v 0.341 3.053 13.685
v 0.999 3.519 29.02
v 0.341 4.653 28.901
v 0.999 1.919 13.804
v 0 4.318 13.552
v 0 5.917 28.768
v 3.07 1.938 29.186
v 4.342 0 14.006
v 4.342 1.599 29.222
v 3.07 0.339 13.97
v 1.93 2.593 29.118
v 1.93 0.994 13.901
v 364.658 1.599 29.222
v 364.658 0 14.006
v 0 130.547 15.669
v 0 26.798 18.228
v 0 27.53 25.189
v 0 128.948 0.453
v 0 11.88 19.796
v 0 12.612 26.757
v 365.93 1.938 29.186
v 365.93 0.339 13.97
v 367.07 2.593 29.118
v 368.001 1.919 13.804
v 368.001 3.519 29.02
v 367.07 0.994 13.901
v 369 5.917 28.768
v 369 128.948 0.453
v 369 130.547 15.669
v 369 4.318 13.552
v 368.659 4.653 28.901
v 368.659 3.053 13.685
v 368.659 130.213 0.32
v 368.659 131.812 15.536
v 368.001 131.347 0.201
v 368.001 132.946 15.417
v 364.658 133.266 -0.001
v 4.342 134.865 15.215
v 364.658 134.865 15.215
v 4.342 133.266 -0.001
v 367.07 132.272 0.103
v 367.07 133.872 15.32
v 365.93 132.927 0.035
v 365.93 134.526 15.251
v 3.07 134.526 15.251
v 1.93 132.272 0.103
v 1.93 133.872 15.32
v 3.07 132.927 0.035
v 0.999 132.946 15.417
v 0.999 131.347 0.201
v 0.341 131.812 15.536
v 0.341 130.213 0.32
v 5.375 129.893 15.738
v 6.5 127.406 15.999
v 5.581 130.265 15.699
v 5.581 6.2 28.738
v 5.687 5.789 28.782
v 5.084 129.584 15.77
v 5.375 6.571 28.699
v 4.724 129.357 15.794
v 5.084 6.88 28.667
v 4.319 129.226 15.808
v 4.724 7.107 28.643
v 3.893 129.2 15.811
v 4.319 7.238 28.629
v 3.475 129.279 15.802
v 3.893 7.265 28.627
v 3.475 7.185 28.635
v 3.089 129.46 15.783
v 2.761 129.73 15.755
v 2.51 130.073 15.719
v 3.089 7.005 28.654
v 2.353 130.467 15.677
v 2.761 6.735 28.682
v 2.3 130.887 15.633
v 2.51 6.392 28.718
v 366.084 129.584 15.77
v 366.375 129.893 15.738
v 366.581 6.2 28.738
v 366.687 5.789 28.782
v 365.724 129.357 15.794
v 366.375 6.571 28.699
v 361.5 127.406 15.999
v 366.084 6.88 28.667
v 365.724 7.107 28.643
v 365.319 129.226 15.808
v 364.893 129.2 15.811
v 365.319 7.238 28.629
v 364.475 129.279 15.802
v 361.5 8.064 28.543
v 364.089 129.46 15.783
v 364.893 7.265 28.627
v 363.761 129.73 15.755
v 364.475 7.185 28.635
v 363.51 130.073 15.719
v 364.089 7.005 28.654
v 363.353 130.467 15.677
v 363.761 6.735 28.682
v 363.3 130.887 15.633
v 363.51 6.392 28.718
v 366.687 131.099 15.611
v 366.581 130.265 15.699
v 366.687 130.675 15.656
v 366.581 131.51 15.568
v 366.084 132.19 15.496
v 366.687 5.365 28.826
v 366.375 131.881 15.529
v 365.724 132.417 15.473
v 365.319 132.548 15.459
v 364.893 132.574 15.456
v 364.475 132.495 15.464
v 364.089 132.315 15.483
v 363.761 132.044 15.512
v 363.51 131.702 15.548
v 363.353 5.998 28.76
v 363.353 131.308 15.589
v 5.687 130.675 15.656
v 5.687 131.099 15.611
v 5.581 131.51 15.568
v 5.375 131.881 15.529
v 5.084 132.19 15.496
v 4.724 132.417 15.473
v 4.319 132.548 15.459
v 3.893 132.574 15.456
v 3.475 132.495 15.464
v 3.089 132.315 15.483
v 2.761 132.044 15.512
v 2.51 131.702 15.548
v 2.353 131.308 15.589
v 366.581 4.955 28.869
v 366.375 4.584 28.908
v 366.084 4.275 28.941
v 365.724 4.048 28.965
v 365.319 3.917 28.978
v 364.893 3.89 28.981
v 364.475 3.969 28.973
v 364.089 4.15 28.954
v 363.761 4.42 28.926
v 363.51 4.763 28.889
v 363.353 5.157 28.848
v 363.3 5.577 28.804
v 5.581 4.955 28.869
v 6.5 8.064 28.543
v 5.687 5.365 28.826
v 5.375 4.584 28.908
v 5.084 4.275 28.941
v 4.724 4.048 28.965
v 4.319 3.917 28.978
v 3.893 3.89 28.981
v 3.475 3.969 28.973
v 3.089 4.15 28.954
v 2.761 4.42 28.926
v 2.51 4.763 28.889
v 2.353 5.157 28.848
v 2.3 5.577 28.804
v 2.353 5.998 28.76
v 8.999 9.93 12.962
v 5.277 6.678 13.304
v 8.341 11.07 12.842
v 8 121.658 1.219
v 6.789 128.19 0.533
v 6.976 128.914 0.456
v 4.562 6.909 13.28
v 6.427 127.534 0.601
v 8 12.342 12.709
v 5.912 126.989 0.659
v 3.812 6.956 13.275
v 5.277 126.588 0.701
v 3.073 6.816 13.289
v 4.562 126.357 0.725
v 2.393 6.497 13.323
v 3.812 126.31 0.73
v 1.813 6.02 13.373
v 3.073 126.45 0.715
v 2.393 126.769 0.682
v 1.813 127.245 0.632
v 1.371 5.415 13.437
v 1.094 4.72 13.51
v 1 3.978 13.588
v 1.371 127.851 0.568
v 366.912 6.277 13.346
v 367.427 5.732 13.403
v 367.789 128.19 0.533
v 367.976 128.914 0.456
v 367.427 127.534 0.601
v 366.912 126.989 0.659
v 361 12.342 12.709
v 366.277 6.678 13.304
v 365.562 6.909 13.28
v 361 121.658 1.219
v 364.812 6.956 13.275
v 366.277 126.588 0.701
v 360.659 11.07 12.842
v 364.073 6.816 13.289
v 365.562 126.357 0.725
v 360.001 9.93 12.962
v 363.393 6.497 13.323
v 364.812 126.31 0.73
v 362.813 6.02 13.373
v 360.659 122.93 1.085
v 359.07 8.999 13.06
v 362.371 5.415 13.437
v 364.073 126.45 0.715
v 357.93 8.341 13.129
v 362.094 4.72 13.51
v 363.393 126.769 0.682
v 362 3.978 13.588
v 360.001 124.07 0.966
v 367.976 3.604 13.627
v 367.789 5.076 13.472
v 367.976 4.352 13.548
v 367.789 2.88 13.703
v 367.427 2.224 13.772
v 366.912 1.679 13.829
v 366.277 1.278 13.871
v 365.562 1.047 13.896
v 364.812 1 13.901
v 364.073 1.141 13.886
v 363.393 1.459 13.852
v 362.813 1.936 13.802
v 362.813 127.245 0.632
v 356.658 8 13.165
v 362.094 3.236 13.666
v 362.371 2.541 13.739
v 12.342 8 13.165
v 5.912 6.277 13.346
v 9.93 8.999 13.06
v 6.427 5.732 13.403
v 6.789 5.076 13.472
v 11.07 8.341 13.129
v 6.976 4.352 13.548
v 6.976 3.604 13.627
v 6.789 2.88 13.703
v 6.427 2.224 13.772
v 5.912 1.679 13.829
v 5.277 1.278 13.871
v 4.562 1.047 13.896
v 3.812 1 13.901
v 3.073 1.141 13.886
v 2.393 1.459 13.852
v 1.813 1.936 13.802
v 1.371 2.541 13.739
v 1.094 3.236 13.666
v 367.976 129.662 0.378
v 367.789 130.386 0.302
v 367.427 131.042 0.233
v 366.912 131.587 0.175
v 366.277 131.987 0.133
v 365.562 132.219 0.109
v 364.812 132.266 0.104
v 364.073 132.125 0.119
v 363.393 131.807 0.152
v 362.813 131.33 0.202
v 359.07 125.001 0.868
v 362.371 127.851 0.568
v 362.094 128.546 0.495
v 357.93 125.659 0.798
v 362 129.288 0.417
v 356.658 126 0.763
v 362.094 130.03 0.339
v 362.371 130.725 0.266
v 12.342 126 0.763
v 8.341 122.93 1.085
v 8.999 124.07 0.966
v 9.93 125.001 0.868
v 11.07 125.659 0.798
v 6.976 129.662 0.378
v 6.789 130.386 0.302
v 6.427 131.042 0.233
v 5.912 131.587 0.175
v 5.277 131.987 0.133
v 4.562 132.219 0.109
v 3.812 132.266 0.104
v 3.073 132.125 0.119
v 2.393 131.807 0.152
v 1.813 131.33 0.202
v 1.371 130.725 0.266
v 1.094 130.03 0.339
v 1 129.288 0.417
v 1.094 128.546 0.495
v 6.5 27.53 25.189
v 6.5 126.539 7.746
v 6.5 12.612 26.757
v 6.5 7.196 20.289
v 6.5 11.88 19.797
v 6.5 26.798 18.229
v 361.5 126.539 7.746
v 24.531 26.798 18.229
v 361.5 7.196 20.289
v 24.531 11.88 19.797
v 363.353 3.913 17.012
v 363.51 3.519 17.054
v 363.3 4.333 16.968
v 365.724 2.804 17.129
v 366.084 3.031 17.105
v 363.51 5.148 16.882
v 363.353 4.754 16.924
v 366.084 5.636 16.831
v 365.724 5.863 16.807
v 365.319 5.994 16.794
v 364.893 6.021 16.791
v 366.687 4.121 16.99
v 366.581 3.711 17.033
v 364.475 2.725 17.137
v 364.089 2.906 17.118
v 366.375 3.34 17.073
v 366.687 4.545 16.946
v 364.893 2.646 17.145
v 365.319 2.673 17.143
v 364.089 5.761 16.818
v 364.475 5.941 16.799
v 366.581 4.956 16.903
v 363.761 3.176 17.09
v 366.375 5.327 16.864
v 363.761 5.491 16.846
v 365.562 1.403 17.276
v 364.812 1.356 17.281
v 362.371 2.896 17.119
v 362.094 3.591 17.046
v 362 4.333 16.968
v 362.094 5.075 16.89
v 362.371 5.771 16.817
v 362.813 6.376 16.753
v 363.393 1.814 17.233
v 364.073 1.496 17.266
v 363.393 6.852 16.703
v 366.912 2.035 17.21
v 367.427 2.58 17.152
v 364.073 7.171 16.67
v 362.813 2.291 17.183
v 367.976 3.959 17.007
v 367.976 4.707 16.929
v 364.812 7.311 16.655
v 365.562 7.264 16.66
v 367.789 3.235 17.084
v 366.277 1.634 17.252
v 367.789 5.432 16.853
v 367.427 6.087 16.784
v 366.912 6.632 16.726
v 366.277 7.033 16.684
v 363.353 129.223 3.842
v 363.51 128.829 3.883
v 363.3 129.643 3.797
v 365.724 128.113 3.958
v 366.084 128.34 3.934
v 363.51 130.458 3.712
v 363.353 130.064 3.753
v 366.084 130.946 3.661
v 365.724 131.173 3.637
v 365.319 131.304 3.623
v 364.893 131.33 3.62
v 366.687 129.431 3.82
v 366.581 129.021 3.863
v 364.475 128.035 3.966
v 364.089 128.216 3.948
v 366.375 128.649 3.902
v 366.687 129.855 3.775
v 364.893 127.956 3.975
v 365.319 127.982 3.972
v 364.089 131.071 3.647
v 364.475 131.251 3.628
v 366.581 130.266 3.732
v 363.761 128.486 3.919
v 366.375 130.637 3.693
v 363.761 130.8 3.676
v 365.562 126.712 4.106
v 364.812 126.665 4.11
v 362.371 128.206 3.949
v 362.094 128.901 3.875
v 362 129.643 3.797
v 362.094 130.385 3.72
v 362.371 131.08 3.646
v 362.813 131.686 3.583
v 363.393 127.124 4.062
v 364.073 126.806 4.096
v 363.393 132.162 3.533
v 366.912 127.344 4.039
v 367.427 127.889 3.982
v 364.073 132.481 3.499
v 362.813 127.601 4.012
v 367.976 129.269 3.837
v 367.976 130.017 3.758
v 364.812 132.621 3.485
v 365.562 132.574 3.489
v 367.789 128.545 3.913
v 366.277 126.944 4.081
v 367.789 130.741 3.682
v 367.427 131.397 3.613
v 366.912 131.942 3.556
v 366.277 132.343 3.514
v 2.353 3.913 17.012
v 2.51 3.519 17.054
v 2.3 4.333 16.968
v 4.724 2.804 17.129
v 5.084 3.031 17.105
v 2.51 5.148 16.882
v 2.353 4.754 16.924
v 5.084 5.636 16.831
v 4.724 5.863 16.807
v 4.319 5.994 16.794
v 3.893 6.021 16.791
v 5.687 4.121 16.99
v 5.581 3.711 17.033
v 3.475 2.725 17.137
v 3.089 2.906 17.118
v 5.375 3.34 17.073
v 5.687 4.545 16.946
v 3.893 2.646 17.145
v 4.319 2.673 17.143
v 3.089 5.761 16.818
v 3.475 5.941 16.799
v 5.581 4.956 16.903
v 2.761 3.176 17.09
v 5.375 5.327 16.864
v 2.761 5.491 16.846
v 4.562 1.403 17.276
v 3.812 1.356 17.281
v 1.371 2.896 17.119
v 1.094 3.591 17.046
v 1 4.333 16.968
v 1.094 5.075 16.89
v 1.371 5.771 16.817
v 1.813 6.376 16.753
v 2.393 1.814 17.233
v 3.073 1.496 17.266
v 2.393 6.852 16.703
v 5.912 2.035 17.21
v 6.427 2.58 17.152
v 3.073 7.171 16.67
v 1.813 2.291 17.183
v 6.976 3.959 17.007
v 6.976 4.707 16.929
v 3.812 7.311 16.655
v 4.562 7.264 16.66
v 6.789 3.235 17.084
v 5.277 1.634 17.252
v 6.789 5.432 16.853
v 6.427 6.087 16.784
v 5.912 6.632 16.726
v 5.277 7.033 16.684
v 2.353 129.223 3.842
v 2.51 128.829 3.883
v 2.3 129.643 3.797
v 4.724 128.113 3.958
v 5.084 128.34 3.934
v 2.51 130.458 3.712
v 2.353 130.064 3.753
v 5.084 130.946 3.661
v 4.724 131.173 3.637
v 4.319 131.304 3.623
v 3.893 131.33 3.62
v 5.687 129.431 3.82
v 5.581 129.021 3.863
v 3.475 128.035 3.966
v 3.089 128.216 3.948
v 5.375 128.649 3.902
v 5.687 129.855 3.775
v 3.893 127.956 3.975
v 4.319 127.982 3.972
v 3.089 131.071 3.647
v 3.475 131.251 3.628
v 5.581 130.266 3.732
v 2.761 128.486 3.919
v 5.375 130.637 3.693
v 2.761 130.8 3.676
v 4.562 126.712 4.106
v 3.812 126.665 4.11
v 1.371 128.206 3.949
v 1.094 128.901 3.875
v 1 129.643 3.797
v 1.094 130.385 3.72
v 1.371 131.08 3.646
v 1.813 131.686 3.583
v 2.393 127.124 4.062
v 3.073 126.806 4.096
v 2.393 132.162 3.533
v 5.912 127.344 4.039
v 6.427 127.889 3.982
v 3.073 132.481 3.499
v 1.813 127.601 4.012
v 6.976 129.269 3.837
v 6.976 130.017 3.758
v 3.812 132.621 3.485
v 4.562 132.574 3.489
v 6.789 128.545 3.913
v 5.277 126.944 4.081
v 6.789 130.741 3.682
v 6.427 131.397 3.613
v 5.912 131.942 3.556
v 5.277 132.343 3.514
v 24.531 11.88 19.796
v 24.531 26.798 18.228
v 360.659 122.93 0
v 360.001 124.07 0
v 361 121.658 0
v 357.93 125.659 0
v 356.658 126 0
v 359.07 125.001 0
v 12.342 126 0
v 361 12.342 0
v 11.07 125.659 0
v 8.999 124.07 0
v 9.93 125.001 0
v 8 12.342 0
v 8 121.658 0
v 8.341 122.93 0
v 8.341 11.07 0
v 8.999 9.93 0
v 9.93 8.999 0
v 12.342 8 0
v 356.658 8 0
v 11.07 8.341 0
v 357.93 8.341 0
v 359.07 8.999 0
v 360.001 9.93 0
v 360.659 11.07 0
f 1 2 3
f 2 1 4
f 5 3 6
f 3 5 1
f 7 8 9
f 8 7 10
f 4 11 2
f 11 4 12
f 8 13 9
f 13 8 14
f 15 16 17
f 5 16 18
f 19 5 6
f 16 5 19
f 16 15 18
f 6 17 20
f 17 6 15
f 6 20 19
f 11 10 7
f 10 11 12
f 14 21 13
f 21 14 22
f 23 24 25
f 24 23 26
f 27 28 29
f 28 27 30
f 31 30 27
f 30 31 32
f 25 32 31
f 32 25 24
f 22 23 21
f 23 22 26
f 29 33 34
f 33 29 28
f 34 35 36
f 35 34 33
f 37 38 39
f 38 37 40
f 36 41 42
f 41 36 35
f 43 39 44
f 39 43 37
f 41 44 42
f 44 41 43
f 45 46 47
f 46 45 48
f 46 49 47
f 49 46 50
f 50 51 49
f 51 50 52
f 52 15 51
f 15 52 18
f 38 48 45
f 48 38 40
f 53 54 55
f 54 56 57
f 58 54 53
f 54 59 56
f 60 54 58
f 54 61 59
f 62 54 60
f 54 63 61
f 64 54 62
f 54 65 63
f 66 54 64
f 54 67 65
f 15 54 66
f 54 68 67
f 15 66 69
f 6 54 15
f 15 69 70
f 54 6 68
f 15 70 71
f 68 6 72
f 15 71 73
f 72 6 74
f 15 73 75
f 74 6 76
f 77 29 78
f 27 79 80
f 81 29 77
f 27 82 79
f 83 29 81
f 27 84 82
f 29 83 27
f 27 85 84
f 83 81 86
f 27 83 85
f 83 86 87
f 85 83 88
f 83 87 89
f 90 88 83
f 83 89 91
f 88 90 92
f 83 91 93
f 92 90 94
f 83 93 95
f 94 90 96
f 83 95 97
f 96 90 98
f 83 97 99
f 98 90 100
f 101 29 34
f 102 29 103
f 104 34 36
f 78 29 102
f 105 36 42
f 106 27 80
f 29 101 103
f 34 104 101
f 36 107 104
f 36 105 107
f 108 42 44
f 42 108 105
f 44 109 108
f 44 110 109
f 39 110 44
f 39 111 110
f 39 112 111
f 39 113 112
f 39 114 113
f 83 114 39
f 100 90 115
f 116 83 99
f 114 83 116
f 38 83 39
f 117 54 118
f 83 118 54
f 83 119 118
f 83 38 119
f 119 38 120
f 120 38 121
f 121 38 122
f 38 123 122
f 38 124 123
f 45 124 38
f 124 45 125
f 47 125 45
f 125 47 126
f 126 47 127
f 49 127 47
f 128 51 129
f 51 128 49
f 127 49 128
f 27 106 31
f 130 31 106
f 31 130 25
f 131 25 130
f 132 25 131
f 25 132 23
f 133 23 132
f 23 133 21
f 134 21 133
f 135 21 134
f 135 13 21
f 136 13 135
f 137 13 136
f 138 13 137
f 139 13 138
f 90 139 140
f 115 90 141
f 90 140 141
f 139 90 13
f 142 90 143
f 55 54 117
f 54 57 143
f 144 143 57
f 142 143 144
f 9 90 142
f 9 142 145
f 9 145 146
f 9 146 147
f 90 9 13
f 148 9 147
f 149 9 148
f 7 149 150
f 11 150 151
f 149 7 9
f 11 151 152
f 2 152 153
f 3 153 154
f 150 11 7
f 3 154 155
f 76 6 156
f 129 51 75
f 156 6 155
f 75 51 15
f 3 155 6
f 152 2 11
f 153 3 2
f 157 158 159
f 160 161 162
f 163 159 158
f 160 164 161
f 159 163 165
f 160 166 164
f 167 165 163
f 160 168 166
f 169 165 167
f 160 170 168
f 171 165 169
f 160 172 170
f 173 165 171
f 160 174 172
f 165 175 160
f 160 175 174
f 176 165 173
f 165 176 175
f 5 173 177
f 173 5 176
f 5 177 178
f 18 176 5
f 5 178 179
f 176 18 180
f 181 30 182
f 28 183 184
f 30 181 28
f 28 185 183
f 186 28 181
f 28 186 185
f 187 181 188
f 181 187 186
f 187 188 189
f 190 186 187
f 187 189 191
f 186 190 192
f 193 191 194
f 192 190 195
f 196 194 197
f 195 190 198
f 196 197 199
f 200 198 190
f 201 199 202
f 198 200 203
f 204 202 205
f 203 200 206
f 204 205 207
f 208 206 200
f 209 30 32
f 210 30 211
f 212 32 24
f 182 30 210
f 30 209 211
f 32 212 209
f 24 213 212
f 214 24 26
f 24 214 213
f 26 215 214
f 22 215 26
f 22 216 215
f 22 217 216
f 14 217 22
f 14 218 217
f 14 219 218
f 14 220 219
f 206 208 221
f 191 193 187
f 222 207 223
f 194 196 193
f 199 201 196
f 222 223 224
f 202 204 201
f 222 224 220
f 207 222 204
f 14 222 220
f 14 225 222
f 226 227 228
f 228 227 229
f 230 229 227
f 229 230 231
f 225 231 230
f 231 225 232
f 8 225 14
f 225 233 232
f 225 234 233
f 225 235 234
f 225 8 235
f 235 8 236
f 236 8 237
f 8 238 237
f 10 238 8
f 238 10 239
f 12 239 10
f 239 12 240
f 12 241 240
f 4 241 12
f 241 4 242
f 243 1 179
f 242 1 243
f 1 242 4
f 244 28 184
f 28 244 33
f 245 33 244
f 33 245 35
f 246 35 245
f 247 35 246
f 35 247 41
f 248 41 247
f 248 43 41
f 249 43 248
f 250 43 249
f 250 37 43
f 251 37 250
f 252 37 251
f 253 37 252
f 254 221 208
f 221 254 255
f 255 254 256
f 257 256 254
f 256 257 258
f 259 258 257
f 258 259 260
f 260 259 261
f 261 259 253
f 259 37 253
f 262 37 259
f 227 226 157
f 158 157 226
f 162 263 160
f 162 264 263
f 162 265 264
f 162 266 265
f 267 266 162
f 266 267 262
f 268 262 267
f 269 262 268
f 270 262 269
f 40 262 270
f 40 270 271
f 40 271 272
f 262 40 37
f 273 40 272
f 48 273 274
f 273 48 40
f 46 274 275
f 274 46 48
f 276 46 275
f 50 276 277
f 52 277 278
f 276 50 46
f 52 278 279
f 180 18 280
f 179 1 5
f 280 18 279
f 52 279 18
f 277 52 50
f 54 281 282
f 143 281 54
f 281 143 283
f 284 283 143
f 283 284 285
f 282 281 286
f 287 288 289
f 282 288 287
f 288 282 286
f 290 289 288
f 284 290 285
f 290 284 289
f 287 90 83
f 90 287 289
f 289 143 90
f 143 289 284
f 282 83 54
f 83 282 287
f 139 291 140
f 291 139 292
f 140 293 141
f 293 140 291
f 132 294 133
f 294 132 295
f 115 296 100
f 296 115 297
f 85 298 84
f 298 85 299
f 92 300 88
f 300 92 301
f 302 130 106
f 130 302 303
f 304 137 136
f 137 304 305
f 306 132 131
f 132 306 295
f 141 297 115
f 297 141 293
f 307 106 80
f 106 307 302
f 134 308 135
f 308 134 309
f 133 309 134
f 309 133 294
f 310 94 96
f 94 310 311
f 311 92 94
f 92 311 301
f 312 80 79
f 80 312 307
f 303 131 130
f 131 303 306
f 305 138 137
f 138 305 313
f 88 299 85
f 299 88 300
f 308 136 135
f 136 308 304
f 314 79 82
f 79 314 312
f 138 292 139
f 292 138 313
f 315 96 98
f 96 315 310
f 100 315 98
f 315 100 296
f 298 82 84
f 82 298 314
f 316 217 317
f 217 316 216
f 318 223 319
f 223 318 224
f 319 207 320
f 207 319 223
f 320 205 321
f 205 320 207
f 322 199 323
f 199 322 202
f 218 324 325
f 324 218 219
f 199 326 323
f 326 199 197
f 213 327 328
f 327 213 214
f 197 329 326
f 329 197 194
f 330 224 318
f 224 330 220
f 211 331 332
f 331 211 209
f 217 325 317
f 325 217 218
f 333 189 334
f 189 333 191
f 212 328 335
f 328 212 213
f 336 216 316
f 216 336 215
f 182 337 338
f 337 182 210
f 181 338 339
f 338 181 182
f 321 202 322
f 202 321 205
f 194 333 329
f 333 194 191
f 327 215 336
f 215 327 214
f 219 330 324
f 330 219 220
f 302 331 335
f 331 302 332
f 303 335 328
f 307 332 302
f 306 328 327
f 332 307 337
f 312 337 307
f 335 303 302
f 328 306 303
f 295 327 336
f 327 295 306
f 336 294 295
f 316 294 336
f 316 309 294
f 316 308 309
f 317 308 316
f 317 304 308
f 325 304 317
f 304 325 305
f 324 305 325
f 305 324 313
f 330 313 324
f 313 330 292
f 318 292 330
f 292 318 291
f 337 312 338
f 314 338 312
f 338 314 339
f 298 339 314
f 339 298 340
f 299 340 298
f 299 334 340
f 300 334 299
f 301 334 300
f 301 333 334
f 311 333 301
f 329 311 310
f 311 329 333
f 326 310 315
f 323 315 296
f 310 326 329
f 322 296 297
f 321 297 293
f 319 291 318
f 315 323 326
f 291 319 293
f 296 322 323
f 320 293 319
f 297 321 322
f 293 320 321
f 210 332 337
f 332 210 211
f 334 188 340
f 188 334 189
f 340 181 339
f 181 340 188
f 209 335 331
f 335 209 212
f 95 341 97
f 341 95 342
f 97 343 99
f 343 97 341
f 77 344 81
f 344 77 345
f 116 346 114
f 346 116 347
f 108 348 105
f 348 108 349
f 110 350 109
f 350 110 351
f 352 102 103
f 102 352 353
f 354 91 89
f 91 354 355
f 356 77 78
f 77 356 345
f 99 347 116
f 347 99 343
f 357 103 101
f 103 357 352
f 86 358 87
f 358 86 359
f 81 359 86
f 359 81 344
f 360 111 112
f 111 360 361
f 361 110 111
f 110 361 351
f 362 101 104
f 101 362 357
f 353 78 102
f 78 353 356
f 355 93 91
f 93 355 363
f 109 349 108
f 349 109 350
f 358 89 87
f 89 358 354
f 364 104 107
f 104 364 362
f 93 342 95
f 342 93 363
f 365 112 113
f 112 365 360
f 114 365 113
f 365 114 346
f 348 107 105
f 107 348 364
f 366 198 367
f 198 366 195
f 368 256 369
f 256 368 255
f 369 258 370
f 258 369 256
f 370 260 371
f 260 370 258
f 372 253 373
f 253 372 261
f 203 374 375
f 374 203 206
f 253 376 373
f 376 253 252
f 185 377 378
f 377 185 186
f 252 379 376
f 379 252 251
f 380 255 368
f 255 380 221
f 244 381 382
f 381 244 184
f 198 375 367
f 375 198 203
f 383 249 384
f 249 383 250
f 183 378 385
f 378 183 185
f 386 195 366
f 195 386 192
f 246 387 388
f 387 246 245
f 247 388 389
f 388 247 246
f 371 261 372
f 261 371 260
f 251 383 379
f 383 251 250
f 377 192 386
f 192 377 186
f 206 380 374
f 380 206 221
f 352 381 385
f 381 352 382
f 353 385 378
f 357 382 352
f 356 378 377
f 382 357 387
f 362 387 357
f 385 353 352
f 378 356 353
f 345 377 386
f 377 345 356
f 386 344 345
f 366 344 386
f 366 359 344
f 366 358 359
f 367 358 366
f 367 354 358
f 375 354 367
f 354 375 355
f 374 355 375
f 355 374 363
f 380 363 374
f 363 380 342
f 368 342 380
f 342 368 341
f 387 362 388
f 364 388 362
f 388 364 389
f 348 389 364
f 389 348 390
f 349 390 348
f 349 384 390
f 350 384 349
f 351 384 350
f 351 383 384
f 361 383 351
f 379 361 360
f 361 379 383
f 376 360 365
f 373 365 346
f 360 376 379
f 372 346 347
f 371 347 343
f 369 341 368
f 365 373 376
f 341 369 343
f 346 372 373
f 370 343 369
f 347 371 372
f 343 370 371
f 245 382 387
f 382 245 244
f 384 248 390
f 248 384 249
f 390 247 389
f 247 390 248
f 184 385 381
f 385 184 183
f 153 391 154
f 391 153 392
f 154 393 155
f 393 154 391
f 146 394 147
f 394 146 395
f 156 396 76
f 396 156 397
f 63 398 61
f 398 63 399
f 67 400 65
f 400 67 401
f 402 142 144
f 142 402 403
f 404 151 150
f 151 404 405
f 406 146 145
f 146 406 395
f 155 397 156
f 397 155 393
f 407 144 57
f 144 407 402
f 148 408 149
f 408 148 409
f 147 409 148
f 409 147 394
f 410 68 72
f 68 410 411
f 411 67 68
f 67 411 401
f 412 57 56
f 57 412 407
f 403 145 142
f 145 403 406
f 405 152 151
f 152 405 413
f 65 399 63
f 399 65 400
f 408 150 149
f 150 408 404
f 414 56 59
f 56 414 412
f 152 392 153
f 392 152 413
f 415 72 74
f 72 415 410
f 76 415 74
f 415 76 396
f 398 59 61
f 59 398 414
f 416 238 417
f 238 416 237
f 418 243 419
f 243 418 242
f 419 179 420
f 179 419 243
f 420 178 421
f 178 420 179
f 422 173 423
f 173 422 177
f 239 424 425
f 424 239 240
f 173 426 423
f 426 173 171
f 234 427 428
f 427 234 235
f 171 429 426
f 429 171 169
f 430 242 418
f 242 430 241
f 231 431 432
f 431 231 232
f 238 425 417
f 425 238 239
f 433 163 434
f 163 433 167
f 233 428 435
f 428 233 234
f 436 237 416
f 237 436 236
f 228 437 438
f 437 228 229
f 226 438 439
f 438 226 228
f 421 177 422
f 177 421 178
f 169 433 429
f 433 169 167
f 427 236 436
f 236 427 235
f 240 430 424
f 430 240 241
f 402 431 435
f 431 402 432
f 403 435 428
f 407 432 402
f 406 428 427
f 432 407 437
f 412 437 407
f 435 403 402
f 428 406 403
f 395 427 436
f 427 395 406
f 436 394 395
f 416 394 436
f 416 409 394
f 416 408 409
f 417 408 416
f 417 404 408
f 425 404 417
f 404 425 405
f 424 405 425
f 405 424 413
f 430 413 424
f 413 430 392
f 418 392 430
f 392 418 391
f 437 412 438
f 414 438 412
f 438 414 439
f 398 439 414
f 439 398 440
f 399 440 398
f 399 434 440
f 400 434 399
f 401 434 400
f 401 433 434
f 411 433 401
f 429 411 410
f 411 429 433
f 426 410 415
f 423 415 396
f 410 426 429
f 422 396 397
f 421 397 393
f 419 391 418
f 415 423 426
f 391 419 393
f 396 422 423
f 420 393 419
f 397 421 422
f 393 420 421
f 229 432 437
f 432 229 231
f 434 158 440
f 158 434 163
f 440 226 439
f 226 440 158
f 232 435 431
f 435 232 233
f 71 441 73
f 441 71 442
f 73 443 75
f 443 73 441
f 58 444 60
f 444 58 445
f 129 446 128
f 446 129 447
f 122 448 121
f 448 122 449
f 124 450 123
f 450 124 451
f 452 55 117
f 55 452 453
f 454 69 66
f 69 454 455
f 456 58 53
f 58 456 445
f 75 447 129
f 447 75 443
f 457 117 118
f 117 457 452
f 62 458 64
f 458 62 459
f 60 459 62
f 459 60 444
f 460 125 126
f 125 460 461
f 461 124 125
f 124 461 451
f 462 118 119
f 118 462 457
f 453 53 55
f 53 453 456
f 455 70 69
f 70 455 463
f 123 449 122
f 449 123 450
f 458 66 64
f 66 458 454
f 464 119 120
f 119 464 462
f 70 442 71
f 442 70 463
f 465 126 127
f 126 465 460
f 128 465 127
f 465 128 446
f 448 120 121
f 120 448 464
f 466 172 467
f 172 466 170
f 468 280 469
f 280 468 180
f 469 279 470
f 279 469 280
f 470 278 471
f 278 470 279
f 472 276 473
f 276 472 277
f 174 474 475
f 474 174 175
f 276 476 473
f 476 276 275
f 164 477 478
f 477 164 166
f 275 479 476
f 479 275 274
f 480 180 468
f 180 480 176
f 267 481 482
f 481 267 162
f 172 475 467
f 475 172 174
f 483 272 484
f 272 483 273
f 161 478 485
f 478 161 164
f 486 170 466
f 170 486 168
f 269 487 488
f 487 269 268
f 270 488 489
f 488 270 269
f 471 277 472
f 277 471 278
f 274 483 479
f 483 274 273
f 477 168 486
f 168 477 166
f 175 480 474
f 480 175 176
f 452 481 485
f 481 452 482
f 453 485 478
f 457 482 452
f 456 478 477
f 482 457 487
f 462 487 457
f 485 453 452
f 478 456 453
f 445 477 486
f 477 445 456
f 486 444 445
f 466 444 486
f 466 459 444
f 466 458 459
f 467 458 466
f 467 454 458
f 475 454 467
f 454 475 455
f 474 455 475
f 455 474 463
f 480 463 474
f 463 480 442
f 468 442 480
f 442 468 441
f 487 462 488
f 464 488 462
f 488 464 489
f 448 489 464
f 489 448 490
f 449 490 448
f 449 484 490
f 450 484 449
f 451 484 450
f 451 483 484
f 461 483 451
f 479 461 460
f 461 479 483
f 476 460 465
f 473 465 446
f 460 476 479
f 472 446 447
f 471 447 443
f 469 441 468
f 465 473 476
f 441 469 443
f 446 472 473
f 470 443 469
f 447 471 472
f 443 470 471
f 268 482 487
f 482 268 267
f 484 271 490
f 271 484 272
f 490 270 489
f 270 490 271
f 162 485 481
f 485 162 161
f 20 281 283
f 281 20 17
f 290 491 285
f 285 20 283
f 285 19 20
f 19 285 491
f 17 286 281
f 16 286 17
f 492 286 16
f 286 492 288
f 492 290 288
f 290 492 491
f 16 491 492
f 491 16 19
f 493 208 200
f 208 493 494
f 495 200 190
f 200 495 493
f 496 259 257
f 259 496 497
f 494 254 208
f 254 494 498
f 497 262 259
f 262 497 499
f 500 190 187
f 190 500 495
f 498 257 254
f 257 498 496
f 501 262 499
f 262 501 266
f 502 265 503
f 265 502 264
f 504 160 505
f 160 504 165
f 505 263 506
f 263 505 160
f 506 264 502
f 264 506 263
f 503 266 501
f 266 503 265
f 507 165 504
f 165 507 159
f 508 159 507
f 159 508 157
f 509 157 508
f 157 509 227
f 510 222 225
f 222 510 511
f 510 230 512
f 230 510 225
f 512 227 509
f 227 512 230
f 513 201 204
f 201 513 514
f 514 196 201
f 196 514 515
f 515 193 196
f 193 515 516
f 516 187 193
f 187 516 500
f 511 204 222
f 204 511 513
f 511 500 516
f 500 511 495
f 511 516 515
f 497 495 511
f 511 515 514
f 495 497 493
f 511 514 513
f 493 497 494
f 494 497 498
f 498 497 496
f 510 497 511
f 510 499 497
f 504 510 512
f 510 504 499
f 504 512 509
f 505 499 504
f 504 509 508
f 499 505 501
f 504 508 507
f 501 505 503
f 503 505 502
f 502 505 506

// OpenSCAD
// Units: mm
// Copyright: @Cyao 2025

include <BOSL/constants.scad>
use <BOSL/shapes.scad>
include <common.scad>

module main_body() {
	difference() {
		translate([-WALL_THICKNESS, -PCB_HEIGHT-WALL_THICKNESS, 0])
		cuboid([PCB_WIDTH+WALL_THICKNESS*2, PCB_HEIGHT+WALL_THICKNESS*2, WALL_THICKNESS+PLATE_TO_BOTTOM], 
		       fillet=5, edges=EDGE_FR_RT+EDGE_BK_RT+EDGE_FR_LF+EDGE_BK_LF, center=false, $fn=24);

		translate([0.5, -PCB_HEIGHT+0.5, WALL_THICKNESS])
		if (PCB_ROUNDED) {
			cuboid([PCB_WIDTH+1, PCB_HEIGHT+1, PLATE_TO_BOTTOM+0.001], fillet=PCB_FILLET_RADIUS, 
			       edges=EDGE_FR_RT+EDGE_BK_RT+EDGE_FR_LF+EDGE_BK_LF, center=false, $fn=24);
		} else {
			cube([PCB_WIDTH, PCB_HEIGHT, PLATE_TO_BOTTOM+0.001]);
		}
	}
}

module screw_hole() {
	translate([0, 0, -2.5])
	cylinder(d=3.4, h=WALL_THICKNESS+PLATE_TO_BOTTOM+5, $fn=25);

	translate([0, 0, -0.001])
	cylinder(d=6, h=3.401, $fn=25);
}

module main_case() {
	difference() {
		main_body();

		translate([-WALL_THICKNESS/2+0.5, WALL_THICKNESS/2-0.5, -0.001])
		screw_hole();

		translate([-WALL_THICKNESS/2+0.5, -WALL_THICKNESS/2+0.5-PCB_HEIGHT, -0.001])
		screw_hole();

		translate([PCB_WIDTH+WALL_THICKNESS/2-0.5, WALL_THICKNESS/2-0.5, -0.001])
		screw_hole();

		translate([PCB_WIDTH+WALL_THICKNESS/2-0.5, -WALL_THICKNESS/2+0.5-PCB_HEIGHT, -0.001])
		screw_hole();
	}
}

module support() {
	difference() {
		if (SUPPORT_FILLET) {
			translate([SUPPORT_MARGIN, SUPPORT_MARGIN, 0])
			cuboid([TOTAL_WIDTH-SUPPORT_MARGIN*2, TOTAL_HEIGHT-SUPPORT_MARGIN*2, TOTAL_HEIGHT*sin(KEYBOARD_ANGLE)+KEYBOARD_OFFSET],
				fillet=SUPPORT_FILLET_RADIUS,
				edges=EDGE_FR_RT+EDGE_BK_RT+EDGE_FR_LF+EDGE_BK_LF, center=false, $fn=24);
		} else if (SUPPORT_CHAMFER) {
			translate([SUPPORT_MARGIN, SUPPORT_MARGIN, 0])
			cuboid([TOTAL_WIDTH-SUPPORT_MARGIN*2, TOTAL_HEIGHT-SUPPORT_MARGIN*2, TOTAL_HEIGHT*sin(KEYBOARD_ANGLE)+KEYBOARD_OFFSET],
				chamfer=SUPPORT_CHAMFER_AMMOUNT,
				edges=EDGE_FR_RT+EDGE_BK_RT+EDGE_FR_LF+EDGE_BK_LF, center=false, $fn=24);
		} else {
			translate([SUPPORT_MARGIN, SUPPORT_MARGIN, 0])
			cuboid([TOTAL_WIDTH-SUPPORT_MARGIN*2, TOTAL_HEIGHT-SUPPORT_MARGIN*2, TOTAL_HEIGHT*sin(KEYBOARD_ANGLE)+KEYBOARD_OFFSET], center=false, $fn=24);
		}

		translate([0, 0, TOTAL_HEIGHT*sin(KEYBOARD_ANGLE)+KEYBOARD_OFFSET])
		rotate(KEYBOARD_ANGLE, [-1, 0, 0])
		translate([-0.001, -0.001])
		cube([TOTAL_WIDTH+0.002, TOTAL_HEIGHT+0.002, TOTAL_HEIGHT*sin(KEYBOARD_ANGLE)+20]);
	}
}

module usb() {
	if (USB_TURN) {
		translate([USB_OFFSET_X, -USB_OFFSET_Y+USB_CUTOUT_WIDTH/2, WALL_THICKNESS])
		translate([-0.001+WALL_THICKNESS*1.5, -USB_CUTOUT_WIDTH, 0])
		rotate(90, [0, 0, 1])
		cube([USB_CUTOUT_WIDTH, WALL_THICKNESS*4, USB_CUTOUT_HEIGHT]);
	} else {
		translate([USB_OFFSET_X-USB_CUTOUT_WIDTH/2, -USB_OFFSET_Y, WALL_THICKNESS])
		translate([0, -WALL_THICKNESS*1.5, 0])
		cube([USB_CUTOUT_WIDTH, WALL_THICKNESS*4, USB_CUTOUT_HEIGHT]);
	}
}

module case() {
	union() {
		translate([0, 0, TOTAL_HEIGHT*sin(KEYBOARD_ANGLE)-0.001+KEYBOARD_OFFSET])
		rotate(KEYBOARD_ANGLE, [-1, 0, 0])
		translate([PCB_WIDTH+WALL_THICKNESS, WALL_THICKNESS, 0])
		rotate(180, [0, 0, 1])
		difference () {
			main_case();

			usb();
		}

		support();
	}
}

case();
